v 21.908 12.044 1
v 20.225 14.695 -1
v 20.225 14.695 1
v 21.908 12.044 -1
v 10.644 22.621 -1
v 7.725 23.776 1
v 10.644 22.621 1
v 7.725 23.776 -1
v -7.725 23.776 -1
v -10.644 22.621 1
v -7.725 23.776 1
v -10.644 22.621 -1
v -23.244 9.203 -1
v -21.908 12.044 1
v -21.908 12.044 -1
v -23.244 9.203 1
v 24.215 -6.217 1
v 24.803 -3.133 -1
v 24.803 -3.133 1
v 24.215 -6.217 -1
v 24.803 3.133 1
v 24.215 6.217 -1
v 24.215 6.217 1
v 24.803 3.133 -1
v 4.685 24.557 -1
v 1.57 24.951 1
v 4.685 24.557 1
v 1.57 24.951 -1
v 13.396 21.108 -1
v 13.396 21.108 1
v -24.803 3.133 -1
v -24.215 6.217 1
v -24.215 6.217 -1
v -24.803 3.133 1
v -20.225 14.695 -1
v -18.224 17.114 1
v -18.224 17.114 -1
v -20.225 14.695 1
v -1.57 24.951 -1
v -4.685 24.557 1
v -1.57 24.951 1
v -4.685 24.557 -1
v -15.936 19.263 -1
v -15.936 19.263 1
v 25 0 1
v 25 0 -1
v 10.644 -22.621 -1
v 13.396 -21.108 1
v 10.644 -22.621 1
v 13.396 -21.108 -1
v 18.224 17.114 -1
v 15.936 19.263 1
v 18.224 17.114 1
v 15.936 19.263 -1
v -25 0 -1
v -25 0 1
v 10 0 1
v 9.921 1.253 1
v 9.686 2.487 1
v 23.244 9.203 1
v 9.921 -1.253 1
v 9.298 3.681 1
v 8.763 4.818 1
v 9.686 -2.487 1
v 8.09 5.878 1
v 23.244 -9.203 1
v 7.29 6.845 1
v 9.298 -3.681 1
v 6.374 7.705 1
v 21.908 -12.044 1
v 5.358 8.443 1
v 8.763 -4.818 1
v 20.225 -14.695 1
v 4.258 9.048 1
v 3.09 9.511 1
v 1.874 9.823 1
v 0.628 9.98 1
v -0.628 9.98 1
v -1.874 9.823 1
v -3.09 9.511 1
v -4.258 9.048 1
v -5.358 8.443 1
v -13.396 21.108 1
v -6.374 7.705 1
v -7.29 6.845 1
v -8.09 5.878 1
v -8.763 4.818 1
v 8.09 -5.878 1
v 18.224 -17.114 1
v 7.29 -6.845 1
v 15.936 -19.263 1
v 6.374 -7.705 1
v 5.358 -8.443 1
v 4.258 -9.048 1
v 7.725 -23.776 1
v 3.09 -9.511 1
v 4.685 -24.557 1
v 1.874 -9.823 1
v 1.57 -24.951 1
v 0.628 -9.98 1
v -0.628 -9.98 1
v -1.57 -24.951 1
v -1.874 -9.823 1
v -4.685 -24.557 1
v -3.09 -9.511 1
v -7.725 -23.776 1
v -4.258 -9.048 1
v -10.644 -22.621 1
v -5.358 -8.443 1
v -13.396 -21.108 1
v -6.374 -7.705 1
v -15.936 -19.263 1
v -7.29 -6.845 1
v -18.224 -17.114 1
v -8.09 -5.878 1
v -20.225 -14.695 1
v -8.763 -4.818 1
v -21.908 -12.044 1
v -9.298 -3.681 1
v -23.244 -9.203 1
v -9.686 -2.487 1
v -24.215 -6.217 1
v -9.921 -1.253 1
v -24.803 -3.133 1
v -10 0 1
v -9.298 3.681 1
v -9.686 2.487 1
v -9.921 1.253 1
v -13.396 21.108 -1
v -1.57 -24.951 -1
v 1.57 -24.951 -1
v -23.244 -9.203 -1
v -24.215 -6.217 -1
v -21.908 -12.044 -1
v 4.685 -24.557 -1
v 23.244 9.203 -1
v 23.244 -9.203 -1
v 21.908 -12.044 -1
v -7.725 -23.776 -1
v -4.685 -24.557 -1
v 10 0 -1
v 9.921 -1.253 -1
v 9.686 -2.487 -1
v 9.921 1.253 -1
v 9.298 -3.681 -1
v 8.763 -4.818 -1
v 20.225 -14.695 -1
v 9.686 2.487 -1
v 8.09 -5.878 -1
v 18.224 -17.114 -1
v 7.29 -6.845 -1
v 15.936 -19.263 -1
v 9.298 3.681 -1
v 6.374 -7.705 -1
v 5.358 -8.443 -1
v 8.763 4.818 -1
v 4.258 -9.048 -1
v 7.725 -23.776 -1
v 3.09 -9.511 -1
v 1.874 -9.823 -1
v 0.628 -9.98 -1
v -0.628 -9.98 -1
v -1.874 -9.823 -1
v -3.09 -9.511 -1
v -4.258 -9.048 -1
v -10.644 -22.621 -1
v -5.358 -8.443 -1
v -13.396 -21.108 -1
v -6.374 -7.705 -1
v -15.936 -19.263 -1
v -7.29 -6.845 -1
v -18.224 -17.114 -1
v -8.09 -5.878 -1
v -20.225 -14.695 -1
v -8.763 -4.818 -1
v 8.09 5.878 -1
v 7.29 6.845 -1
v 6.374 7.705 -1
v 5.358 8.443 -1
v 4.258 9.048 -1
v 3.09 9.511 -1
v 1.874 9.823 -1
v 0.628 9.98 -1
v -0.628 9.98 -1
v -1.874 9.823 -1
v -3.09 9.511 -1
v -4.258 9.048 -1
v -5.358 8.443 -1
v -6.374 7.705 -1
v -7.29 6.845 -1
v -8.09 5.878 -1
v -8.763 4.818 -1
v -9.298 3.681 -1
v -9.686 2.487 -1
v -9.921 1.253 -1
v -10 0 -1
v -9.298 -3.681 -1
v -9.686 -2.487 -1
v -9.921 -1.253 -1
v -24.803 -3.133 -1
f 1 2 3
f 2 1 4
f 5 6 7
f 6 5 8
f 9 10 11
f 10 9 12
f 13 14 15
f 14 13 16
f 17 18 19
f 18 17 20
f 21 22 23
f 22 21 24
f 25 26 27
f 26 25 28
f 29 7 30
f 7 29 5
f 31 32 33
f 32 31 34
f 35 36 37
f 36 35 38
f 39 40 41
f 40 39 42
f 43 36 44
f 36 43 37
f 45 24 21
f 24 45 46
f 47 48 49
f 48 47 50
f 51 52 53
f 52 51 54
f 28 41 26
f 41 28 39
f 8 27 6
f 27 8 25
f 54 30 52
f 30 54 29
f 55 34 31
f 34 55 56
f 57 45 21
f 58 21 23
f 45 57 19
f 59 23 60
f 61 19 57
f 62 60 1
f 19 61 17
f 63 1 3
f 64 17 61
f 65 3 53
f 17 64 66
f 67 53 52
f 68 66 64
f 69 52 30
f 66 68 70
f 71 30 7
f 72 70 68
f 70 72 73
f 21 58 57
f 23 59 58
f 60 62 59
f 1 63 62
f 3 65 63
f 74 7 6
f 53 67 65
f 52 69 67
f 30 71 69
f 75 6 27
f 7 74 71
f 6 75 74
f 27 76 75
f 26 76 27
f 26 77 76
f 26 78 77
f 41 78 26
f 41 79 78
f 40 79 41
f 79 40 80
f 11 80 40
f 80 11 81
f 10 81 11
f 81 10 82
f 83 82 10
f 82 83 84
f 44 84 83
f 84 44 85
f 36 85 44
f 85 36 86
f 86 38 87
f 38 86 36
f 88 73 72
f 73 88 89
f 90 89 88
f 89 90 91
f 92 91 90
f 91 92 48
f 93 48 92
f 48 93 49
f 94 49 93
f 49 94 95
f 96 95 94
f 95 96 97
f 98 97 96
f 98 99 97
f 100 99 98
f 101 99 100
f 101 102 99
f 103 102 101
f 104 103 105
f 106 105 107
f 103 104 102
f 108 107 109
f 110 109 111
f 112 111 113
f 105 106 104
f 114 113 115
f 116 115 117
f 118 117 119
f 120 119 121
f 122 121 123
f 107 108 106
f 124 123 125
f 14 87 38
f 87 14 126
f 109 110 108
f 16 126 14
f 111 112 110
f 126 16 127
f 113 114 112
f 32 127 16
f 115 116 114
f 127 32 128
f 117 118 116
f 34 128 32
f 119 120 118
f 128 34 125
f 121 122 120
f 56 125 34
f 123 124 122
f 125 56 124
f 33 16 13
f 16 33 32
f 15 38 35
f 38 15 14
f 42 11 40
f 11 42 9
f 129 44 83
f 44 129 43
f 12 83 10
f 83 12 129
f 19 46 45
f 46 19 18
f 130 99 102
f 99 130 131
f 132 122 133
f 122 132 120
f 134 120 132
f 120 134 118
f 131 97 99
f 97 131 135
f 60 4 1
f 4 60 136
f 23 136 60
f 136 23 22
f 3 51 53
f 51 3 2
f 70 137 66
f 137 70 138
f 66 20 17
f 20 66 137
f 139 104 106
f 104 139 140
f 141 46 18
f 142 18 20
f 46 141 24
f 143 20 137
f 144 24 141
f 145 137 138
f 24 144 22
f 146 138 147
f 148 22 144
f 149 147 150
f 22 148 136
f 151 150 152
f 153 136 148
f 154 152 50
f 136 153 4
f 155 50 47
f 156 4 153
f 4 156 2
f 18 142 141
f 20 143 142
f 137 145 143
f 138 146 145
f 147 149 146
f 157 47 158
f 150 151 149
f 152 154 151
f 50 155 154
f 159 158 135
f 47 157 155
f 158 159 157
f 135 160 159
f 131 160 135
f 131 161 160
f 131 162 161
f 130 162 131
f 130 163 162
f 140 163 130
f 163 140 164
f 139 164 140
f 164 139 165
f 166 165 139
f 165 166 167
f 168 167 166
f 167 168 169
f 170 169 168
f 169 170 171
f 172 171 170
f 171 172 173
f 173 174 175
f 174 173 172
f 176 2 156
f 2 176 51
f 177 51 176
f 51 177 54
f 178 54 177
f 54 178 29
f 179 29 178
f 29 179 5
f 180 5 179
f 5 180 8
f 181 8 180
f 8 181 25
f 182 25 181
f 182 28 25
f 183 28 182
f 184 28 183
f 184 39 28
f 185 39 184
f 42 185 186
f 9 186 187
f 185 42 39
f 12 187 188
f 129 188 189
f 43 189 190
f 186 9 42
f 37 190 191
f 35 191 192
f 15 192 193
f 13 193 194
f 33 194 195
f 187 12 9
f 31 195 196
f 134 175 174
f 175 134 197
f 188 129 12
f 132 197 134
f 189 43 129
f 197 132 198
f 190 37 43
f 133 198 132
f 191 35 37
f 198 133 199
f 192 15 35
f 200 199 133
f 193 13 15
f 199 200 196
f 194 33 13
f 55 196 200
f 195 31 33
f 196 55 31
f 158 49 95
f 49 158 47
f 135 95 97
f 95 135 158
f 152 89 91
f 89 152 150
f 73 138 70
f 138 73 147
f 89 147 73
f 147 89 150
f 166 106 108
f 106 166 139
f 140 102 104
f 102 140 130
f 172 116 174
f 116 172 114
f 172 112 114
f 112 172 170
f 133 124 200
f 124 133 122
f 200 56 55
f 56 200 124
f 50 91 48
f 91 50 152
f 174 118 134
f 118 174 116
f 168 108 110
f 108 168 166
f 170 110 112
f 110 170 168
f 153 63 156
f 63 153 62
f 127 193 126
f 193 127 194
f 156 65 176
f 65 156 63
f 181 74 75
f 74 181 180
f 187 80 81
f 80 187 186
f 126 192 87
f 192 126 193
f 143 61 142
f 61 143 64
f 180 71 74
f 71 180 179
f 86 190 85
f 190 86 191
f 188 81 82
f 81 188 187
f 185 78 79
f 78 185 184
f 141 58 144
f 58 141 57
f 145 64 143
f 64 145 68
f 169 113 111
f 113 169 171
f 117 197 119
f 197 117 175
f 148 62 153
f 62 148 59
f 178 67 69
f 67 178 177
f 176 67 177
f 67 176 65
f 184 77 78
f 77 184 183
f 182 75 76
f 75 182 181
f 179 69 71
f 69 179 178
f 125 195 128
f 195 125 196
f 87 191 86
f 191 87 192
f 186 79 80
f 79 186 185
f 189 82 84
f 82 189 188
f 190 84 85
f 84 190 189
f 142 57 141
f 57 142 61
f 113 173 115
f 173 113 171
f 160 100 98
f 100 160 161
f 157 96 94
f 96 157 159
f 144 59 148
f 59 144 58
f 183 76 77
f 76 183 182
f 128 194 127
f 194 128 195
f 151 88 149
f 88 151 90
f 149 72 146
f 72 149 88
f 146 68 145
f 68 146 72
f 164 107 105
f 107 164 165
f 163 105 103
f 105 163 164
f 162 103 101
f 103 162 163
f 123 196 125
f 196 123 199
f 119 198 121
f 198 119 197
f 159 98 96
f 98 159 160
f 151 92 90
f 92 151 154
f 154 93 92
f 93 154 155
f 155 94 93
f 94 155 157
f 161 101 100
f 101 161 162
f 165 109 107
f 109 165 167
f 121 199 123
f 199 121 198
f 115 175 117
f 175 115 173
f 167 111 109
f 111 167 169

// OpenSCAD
$fn = 50;


difference() {
	union() {
		translate(v = [0, 0, -1.0000000000]) {
			cylinder(h = 2, r = 25.0000000000);
		}
	}
	union() {
		translate(v = [0, 0, -100.0000000000]) {
			cylinder(h = 200, r = 10);
		}
	}
}
